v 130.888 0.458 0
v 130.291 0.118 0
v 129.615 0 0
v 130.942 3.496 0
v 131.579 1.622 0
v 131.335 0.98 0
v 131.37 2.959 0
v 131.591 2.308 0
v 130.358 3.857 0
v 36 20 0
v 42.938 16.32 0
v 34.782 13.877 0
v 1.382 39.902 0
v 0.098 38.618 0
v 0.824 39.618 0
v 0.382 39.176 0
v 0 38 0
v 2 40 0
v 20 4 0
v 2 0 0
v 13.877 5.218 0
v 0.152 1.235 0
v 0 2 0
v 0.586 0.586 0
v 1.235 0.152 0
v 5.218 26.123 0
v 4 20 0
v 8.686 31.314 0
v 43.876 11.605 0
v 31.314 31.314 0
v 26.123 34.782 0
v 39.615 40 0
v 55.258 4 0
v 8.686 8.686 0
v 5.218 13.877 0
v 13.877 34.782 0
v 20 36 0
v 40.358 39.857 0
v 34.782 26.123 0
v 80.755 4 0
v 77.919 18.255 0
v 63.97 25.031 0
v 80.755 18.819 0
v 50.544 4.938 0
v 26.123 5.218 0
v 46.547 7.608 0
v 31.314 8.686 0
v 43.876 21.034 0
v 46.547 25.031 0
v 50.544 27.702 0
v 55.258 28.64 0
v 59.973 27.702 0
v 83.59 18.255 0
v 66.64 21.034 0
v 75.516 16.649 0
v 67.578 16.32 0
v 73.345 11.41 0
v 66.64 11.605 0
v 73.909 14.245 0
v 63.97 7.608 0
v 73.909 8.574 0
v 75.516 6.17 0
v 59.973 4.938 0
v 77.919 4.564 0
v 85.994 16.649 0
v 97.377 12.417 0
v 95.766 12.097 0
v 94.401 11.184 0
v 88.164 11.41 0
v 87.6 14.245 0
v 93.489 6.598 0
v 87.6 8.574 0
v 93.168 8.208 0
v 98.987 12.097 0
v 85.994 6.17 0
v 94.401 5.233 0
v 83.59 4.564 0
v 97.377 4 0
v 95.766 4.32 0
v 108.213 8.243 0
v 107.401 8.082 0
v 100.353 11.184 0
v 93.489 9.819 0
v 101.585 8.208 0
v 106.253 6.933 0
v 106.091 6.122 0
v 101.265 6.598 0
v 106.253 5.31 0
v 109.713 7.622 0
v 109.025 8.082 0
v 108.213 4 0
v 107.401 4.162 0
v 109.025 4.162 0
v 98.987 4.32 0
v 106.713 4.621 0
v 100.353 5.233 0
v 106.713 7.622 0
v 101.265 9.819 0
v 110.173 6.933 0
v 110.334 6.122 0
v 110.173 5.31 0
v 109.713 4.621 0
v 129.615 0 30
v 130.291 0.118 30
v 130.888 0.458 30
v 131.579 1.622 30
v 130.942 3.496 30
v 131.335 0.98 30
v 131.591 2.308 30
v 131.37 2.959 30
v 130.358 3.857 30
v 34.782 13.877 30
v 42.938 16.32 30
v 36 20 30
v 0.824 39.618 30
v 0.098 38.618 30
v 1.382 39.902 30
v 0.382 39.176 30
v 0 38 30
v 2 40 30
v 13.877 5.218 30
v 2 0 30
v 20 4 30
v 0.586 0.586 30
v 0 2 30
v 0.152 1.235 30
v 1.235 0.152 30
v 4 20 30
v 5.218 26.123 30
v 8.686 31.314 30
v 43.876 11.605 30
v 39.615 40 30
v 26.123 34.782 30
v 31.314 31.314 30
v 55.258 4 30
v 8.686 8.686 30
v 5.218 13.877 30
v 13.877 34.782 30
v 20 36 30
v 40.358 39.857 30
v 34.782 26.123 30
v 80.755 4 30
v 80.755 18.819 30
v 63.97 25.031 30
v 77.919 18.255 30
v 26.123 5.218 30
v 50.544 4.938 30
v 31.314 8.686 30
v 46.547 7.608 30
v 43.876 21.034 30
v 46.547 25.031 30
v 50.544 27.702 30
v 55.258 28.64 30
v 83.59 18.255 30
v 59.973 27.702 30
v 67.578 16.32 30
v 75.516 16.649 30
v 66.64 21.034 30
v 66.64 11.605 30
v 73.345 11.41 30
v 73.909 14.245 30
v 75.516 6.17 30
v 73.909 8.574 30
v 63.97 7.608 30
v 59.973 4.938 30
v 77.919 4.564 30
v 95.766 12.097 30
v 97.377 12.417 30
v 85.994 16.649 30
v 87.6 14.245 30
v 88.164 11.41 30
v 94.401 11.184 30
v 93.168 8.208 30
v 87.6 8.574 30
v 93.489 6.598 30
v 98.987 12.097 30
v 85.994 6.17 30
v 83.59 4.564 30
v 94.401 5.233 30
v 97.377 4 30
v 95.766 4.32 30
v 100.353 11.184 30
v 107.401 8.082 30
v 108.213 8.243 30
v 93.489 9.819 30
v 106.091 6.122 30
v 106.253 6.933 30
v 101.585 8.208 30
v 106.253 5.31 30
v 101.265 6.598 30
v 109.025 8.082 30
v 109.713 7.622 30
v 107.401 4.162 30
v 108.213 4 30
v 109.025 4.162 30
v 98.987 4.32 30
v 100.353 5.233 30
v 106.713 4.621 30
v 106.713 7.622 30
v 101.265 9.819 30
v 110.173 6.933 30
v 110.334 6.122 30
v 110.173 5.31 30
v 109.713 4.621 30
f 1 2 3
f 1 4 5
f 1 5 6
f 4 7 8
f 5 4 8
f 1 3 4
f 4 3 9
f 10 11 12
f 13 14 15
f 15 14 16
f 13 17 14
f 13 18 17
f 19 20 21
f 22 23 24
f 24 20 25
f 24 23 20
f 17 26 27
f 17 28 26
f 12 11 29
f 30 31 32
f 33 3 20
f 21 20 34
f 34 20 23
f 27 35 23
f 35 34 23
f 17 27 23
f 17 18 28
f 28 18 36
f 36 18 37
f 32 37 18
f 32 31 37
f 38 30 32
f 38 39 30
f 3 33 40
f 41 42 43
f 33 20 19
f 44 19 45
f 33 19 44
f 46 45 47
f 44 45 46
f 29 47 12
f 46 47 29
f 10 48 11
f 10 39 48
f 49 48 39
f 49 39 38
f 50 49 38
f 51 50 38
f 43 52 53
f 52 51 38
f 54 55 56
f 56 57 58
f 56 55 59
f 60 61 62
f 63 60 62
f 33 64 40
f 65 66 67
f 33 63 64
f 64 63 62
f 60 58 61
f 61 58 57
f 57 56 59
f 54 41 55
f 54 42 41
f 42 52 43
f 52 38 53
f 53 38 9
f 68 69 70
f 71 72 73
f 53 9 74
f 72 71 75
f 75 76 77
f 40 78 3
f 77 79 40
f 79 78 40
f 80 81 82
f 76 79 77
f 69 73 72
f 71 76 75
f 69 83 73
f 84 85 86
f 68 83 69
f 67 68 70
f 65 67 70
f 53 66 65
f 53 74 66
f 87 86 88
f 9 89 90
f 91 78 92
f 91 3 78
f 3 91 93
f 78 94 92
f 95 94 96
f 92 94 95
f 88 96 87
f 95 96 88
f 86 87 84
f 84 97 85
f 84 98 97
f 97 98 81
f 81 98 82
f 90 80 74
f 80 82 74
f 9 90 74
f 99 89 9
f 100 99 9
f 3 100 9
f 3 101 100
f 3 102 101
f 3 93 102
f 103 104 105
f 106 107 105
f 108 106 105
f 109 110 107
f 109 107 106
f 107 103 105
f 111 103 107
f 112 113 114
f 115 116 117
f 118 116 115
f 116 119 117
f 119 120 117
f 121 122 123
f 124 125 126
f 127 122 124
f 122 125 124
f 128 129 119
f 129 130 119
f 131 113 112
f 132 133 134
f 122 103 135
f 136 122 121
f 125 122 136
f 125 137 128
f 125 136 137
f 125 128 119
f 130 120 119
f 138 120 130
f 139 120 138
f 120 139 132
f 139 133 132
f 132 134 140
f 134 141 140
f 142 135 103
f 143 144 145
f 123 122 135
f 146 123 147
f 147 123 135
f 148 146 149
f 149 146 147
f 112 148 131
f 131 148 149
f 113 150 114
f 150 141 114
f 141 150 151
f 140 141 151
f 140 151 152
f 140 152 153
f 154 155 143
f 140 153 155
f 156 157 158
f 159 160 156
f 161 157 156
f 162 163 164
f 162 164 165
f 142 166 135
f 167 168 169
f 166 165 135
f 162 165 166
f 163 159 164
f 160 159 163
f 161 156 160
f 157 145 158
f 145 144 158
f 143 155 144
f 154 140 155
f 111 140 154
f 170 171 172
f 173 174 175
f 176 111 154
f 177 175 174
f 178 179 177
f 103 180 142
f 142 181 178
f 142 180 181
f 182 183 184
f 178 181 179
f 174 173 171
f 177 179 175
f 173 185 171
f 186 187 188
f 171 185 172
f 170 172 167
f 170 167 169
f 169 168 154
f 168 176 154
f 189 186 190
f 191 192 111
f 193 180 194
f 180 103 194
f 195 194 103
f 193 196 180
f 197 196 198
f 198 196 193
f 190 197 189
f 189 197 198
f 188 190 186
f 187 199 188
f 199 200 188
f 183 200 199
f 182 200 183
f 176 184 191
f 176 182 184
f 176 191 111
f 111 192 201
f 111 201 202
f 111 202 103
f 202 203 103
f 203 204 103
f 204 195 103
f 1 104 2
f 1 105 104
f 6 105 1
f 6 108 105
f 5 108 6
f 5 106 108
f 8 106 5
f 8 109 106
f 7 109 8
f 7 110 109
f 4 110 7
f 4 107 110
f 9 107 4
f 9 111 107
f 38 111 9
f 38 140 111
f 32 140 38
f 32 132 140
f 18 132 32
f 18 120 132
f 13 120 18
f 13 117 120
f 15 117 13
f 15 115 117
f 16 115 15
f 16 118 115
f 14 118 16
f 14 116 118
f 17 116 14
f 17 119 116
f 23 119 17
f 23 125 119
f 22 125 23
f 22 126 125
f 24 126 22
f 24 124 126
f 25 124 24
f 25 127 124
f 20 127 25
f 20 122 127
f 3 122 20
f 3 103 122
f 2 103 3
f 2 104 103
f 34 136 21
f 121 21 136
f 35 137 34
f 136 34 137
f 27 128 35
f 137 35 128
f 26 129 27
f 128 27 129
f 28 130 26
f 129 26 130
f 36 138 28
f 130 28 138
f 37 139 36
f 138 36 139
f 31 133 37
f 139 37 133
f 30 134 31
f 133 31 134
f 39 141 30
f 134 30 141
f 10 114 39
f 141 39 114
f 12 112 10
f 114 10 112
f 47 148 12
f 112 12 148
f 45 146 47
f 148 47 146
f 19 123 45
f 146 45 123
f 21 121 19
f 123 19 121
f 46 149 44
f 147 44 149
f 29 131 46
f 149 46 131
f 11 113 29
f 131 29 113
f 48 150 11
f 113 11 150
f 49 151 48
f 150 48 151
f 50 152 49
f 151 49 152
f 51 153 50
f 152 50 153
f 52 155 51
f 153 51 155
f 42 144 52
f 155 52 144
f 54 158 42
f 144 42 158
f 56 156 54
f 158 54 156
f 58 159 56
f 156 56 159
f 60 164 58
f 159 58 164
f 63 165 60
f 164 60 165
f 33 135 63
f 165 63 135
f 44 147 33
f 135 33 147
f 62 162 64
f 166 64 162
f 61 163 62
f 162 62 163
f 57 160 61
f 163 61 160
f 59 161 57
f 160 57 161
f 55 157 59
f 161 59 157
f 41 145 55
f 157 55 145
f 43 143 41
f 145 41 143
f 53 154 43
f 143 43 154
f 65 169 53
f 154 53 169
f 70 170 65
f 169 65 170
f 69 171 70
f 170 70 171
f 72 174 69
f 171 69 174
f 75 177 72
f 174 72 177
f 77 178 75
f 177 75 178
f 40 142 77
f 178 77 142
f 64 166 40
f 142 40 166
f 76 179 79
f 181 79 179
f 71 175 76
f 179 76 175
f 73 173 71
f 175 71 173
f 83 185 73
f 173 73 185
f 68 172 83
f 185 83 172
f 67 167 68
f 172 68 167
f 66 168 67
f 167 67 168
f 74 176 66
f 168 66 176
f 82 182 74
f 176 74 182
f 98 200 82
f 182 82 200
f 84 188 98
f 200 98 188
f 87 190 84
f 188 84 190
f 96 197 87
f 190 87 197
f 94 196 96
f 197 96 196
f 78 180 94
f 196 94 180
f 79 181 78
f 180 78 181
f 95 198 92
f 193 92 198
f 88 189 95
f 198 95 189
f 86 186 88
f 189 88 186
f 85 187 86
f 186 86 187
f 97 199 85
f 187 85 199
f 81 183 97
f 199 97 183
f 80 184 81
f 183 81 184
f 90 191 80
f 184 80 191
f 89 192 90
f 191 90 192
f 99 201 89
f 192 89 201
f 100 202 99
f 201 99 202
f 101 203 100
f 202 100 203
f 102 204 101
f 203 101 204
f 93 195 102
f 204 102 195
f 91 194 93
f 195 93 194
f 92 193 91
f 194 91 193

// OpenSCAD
// Generated by Parametrix
ca_doorstop_faceProfile_0 = [ [ 2.0000, 0.0000 ],[ 129.6148, 0.0000 ],[ 130.2915, 0.1179 ],[ 130.8883, 0.4579 ],[ 131.3350, 0.9796 ],[ 131.5787, 1.6218 ],[ 131.5909, 2.3085 ],[ 131.3700, 2.9589 ],[ 130.9421, 3.4961 ],[ 130.3576, 3.8570 ],[ 40.3576, 39.8570 ],[ 39.6148, 40.0000 ],[ 2.0000, 40.0000 ],[ 1.3820, 39.9021 ],[ 0.8244, 39.6180 ],[ 0.3820, 39.1756 ],[ 0.0979, 38.6180 ],[ 0.0000, 38.0000 ],[ 0.0000, 2.0000 ],[ 0.1522, 1.2346 ],[ 0.5858, 0.5858 ],[ 1.2346, 0.1522 ],[ 2.0000, 0.0000 ] ];
cb_doorstop_faceProfile_0 = [  0, 1, 2, 3, 4, 5, 6, 7, 8, 9, 10, 11, 12, 13, 14, 15, 16, 17, 18, 19, 20, 21, 22 ];
ca_doorstop_faceProfile_1 = [ [ 36.0000, 20.0000 ],[ 34.7821, 26.1229 ],[ 31.3137, 31.3137 ],[ 26.1229, 34.7821 ],[ 20.0000, 36.0000 ],[ 13.8771, 34.7821 ],[ 8.6863, 31.3137 ],[ 5.2179, 26.1229 ],[ 4.0000, 20.0000 ],[ 5.2179, 13.8771 ],[ 8.6863, 8.6863 ],[ 13.8771, 5.2179 ],[ 20.0000, 4.0000 ],[ 26.1229, 5.2179 ],[ 31.3137, 8.6863 ],[ 34.7821, 13.8771 ],[ 36.0000, 20.0000 ] ];
cb_doorstop_faceProfile_1 = [  23, 24, 25, 26, 27, 28, 29, 30, 31, 32, 33, 34, 35, 36, 37, 38, 39 ];
ca_doorstop_faceProfile_2 = [ [ 67.5780, 16.3198 ],[ 66.6402, 21.0343 ],[ 63.9696, 25.0312 ],[ 59.9728, 27.7018 ],[ 55.2582, 28.6395 ],[ 50.5437, 27.7018 ],[ 46.5468, 25.0312 ],[ 43.8763, 21.0343 ],[ 42.9385, 16.3198 ],[ 43.8763, 11.6052 ],[ 46.5468, 7.6084 ],[ 50.5437, 4.9378 ],[ 55.2582, 4.0000 ],[ 59.9728, 4.9378 ],[ 63.9696, 7.6084 ],[ 66.6402, 11.6052 ],[ 67.5780, 16.3198 ] ];
cb_doorstop_faceProfile_2 = [  40, 41, 42, 43, 44, 45, 46, 47, 48, 49, 50, 51, 52, 53, 54, 55, 56 ];
ca_doorstop_faceProfile_3 = [ [ 88.1645, 11.4096 ],[ 87.6004, 14.2451 ],[ 85.9942, 16.6489 ],[ 83.5904, 18.2551 ],[ 80.7549, 18.8191 ],[ 77.9194, 18.2551 ],[ 75.5155, 16.6489 ],[ 73.9093, 14.2451 ],[ 73.3453, 11.4096 ],[ 73.9093, 8.5740 ],[ 75.5155, 6.1702 ],[ 77.9194, 4.5640 ],[ 80.7549, 4.0000 ],[ 83.5904, 4.5640 ],[ 85.9942, 6.1702 ],[ 87.6004, 8.5740 ],[ 88.1645, 11.4096 ] ];
cb_doorstop_faceProfile_3 = [  57, 58, 59, 60, 61, 62, 63, 64, 65, 66, 67, 68, 69, 70, 71, 72, 73 ];
ca_doorstop_faceProfile_4 = [ [ 101.5852, 8.2085 ],[ 101.2649, 9.8190 ],[ 100.3526, 11.1843 ],[ 98.9873, 12.0966 ],[ 97.3767, 12.4170 ],[ 95.7662, 12.0966 ],[ 94.4009, 11.1843 ],[ 93.4886, 9.8190 ],[ 93.1682, 8.2085 ],[ 93.4886, 6.5980 ],[ 94.4009, 5.2326 ],[ 95.7662, 4.3204 ],[ 97.3767, 4.0000 ],[ 98.9873, 4.3204 ],[ 100.3526, 5.2326 ],[ 101.2649, 6.5980 ],[ 101.5852, 8.2085 ] ];
cb_doorstop_faceProfile_4 = [  74, 75, 76, 77, 78, 79, 80, 81, 82, 83, 84, 85, 86, 87, 88, 89, 90 ];
ca_doorstop_faceProfile_5 = [ [ 110.3345, 6.1216 ],[ 110.1730, 6.9335 ],[ 109.7131, 7.6219 ],[ 109.0248, 8.0818 ],[ 108.2129, 8.2433 ],[ 107.4010, 8.0818 ],[ 106.7127, 7.6219 ],[ 106.2528, 6.9335 ],[ 106.0913, 6.1216 ],[ 106.2528, 5.3097 ],[ 106.7127, 4.6214 ],[ 107.4010, 4.1615 ],[ 108.2129, 4.0000 ],[ 109.0248, 4.1615 ],[ 109.7131, 4.6214 ],[ 110.1730, 5.3097 ],[ 110.3345, 6.1216 ] ];
cb_doorstop_faceProfile_5 = [  91, 92, 93, 94, 95, 96, 97, 98, 99, 100, 101, 102, 103, 104, 105, 106, 107 ];
a_doorstop_faceProfile = concat(ca_doorstop_faceProfile_0, ca_doorstop_faceProfile_1, ca_doorstop_faceProfile_2, ca_doorstop_faceProfile_3, ca_doorstop_faceProfile_4, ca_doorstop_faceProfile_5);
b_doorstop_faceProfile = [cb_doorstop_faceProfile_0, cb_doorstop_faceProfile_1, cb_doorstop_faceProfile_2, cb_doorstop_faceProfile_3, cb_doorstop_faceProfile_4, cb_doorstop_faceProfile_5];
ca_doorstop_faceTop_0 = [ [ 0.0000, 0.0000 ],[ 40.0000, 0.0000 ],[ 40.0000, 30.0000 ],[ 0.0000, 30.0000 ],[ 0.0000, 0.0000 ] ];
cb_doorstop_faceTop_0 = [  0, 1, 2, 3, 4 ];
ca_doorstop_faceTop_1 = [ [ 40.0000, 0.0000 ],[ 140.0000, 0.0000 ],[ 140.0000, 30.0000 ],[ 40.0000, 30.0000 ],[ 40.0000, 0.0000 ] ];
cb_doorstop_faceTop_1 = [  5, 6, 7, 8, 9 ];
a_doorstop_faceTop = concat(ca_doorstop_faceTop_0, ca_doorstop_faceTop_1);
b_doorstop_faceTop = [cb_doorstop_faceTop_0, cb_doorstop_faceTop_1];
ca_doorstop_faceSide_0 = [ [ 0.0000, 0.0000 ],[ 30.0000, 0.0000 ],[ 30.0000, 40.0000 ],[ 0.0000, 40.0000 ],[ 0.0000, 0.0000 ] ];
cb_doorstop_faceSide_0 = [  0, 1, 2, 3, 4 ];
a_doorstop_faceSide = concat(ca_doorstop_faceSide_0);
b_doorstop_faceSide = [cb_doorstop_faceSide_0];

module subpax_doorstop () {
	translate( [ 0, 0, 0 ])
		rotate( [ 0, 0, 0 ])
			   linear_extrude(height = 30) polygon(a_doorstop_faceProfile, b_doorstop_faceProfile);
}

module pax_doorstop () {
	subpax_doorstop();
}

pax_doorstop();
